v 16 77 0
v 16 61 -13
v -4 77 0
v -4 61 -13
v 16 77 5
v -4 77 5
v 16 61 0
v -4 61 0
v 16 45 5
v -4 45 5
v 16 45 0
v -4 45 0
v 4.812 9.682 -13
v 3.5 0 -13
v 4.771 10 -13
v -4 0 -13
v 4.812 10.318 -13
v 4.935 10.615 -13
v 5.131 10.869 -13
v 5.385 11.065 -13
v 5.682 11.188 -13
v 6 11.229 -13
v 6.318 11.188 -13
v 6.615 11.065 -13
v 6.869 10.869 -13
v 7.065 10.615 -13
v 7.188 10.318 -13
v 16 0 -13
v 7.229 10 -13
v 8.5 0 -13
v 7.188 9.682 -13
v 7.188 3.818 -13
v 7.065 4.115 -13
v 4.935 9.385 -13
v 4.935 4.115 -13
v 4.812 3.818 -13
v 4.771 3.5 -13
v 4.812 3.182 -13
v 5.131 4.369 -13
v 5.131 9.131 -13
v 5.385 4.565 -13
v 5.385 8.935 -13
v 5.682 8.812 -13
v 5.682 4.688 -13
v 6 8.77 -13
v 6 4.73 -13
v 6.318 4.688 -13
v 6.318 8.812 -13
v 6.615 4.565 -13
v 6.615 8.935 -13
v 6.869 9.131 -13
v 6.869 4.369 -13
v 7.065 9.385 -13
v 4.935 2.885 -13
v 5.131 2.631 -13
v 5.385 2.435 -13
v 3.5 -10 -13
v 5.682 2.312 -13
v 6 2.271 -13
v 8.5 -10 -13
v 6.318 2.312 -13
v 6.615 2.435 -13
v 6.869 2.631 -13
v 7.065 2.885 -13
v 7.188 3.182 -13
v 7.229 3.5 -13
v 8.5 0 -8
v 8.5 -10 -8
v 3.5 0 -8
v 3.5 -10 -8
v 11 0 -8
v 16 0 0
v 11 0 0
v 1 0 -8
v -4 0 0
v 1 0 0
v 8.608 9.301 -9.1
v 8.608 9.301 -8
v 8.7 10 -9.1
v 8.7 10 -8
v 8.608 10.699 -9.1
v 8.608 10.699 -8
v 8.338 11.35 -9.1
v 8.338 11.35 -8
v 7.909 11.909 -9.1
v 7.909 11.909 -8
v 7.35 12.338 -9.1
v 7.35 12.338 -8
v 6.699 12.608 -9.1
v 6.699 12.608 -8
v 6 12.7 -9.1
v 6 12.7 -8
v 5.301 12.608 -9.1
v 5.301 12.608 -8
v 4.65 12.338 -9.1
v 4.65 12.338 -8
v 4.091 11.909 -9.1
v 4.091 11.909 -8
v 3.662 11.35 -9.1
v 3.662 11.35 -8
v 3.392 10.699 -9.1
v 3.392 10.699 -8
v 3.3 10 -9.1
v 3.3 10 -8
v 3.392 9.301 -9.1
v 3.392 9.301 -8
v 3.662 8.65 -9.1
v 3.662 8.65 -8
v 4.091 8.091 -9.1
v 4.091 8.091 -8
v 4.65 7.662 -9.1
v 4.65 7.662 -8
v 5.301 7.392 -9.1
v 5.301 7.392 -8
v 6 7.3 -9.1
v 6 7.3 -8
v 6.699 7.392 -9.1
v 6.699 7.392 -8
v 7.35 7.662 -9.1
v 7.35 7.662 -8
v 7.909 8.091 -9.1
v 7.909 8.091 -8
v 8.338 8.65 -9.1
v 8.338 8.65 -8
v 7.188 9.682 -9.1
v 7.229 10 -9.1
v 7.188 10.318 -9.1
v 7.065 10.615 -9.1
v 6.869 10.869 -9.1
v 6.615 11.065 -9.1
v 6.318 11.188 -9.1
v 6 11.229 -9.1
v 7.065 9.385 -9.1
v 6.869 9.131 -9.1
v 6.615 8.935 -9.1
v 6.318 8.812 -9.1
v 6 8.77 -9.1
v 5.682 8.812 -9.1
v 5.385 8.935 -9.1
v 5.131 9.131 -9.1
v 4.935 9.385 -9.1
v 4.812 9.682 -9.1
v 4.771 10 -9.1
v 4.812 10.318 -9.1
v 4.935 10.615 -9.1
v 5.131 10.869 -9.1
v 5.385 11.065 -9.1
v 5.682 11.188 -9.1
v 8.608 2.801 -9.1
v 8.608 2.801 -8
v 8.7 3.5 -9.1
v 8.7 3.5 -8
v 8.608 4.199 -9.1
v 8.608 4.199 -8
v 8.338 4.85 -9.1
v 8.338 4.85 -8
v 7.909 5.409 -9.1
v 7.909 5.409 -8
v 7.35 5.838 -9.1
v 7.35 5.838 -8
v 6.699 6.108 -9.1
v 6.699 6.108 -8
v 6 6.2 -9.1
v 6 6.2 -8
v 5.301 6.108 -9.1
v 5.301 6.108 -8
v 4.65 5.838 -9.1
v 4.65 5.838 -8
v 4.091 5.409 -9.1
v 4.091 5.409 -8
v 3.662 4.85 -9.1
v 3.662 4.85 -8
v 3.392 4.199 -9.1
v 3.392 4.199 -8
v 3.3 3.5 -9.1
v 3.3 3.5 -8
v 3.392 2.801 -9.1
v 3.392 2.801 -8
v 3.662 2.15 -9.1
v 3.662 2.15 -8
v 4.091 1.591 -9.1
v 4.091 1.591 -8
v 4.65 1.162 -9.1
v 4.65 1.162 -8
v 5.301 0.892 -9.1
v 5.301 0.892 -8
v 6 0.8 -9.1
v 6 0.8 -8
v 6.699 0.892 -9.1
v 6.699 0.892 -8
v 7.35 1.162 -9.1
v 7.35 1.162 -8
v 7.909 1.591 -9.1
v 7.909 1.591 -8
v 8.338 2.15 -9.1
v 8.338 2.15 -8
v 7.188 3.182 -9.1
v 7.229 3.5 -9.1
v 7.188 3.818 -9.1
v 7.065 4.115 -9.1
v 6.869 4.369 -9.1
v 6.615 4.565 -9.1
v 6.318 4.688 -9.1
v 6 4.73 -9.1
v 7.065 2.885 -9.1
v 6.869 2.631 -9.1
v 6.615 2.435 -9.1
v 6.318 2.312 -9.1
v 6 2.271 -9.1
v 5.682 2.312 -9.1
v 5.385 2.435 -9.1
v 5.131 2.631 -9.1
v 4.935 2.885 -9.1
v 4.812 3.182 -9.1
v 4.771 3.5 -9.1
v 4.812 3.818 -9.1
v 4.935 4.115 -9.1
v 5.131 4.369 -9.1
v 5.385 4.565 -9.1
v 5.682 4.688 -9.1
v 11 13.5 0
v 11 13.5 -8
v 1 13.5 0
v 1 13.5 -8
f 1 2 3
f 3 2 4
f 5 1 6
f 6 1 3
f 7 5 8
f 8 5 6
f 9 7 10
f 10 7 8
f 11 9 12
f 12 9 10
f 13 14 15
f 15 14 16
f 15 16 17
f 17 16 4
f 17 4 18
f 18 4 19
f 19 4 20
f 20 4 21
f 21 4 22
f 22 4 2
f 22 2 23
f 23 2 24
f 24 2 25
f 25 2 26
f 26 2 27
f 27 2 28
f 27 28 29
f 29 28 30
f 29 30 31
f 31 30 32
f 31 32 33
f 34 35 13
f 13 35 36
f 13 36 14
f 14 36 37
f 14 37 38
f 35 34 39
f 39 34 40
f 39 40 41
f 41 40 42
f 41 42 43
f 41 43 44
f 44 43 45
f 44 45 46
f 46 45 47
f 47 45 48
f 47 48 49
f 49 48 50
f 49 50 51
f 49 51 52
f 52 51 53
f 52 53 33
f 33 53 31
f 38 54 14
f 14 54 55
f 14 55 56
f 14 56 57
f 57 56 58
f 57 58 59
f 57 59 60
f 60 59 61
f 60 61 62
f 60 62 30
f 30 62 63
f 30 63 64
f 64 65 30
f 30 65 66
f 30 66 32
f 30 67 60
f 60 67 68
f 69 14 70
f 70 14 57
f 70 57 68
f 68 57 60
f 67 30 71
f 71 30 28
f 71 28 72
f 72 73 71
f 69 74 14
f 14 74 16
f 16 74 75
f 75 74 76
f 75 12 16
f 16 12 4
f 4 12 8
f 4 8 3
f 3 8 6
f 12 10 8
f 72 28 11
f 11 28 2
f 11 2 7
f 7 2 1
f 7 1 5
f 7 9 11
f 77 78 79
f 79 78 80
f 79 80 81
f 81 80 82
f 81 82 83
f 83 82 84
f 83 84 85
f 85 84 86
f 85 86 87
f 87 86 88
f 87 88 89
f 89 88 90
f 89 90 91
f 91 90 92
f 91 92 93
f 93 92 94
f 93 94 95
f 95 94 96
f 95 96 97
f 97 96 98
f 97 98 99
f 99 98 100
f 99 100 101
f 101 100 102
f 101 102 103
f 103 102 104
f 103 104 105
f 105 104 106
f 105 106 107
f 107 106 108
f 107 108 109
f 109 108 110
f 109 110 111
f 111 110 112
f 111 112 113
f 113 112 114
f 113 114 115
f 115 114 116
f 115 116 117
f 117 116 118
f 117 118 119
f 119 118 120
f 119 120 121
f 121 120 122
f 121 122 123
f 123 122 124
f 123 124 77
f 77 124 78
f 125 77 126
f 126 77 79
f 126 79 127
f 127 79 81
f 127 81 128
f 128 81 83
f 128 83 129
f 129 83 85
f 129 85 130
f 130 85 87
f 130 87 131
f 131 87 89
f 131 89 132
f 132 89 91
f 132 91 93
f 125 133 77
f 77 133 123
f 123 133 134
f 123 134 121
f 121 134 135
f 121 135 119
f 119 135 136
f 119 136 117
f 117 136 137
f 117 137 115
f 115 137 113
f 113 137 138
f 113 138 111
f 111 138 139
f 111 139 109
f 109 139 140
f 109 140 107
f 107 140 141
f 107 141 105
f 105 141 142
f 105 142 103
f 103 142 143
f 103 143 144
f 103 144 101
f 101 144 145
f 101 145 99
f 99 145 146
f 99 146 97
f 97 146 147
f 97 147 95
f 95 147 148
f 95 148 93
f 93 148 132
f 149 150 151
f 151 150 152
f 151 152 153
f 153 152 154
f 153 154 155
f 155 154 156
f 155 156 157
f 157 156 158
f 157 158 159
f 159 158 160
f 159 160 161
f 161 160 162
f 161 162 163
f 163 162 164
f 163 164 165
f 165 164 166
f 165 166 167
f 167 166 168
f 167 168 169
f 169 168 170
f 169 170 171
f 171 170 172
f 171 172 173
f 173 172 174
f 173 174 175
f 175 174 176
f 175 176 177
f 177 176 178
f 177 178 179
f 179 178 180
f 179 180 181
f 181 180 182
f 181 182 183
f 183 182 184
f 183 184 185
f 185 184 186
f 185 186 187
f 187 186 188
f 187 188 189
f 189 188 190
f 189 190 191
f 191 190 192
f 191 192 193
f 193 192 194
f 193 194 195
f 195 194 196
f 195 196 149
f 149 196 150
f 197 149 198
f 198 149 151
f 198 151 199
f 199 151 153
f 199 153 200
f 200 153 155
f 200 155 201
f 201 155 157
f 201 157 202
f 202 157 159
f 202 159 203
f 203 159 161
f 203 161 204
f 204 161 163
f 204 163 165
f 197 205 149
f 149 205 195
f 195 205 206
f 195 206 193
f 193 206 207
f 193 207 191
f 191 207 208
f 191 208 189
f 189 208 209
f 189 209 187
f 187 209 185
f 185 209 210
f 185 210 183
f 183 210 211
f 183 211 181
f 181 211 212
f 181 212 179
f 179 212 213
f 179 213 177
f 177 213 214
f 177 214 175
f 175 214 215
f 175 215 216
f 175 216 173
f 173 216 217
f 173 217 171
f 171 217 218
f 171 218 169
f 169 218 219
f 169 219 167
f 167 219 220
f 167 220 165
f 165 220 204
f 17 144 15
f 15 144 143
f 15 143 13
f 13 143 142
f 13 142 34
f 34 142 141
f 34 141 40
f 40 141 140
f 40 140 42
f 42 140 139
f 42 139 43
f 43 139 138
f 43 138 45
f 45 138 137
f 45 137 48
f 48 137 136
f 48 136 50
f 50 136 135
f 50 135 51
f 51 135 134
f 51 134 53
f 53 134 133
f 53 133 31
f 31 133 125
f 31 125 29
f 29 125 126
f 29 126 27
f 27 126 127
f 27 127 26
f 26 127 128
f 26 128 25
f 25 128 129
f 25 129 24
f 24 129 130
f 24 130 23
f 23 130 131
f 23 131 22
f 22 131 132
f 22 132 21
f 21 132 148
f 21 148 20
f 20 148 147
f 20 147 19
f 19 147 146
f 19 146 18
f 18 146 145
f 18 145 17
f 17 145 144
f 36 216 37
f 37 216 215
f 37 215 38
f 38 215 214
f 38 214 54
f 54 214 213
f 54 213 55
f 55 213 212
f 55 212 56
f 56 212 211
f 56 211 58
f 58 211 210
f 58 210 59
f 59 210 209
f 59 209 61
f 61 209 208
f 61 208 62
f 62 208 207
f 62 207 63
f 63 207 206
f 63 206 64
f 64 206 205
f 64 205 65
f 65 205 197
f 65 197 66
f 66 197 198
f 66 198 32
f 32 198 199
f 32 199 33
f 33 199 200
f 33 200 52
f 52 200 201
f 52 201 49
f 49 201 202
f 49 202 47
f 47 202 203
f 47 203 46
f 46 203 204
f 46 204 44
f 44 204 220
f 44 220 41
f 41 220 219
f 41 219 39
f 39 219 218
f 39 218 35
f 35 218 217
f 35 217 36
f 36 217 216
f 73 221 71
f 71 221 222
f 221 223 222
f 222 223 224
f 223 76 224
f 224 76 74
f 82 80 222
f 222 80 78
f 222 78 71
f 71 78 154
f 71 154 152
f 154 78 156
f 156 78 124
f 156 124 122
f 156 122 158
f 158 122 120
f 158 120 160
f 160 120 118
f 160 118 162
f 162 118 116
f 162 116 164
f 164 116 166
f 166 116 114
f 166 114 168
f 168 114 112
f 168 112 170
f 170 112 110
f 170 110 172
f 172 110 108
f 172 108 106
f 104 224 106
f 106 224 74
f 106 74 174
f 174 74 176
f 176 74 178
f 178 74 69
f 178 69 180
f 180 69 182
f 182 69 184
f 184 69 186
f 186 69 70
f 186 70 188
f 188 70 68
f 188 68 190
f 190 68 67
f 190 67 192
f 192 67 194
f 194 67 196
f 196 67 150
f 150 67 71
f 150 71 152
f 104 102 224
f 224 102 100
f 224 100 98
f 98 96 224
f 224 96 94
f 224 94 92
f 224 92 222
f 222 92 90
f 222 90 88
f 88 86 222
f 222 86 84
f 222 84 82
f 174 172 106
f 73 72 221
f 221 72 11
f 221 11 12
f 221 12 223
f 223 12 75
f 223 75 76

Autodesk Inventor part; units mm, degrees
ref_plane "YZ Plane" through (0, 0, 0) normal (1, 0, 0) x (0, 1, 0)
ref_plane "XZ Plane" through (0, 0, 0) normal (0, 1, 0) x (-1, 0, 0)
sketch "Sketch2" plane through (0, 0, 0) normal (1, 0, 0) x (0, 1, 0)
  line L0 (0, 0) -> (15, 0)
  line L1 (15, 0) -> (15, -10)
  line L2 (15, -10) -> (0, -10)
  line L3 (0, -10) -> (0, 0)
  dimension "d4" = 15
  dimension "d5" = 10
extrude "Extrusion2" add sketch "Sketch2" along normal blind 12
sketch "Sketch3" plane through (0, 0, 0) normal (0, 0, 1) x (1, 0, 0)
  line L0 (0, 0) -> (1, 0)
  line L1 (0, 0) -> (12, 0) projected
  line L2 (1, 0) -> (1, 13.5)
  line L3 (1, 13.5) -> (11, 13.5)
  line L4 (11, 13.5) -> (11, 0)
  line L5 (11, 0) -> (1, 0)
  dimension "d8" = 1
  dimension "d9" = 13.5
  dimension "d10" = 10
extrude "Extrusion3" cut sketch "Sketch3" against normal blind 8
sketch "Sketch4" plane through (0, 0, -10) normal (0, 0, -1) x (-1, 0, 0)
  line L0 (0, 15) -> (-12, 15) projected
  line L1 (0, 0) -> (-12, 0) projected
  line L2 (-12, 15) -> (0, 15)
  line L3 (0, 15) -> (0, 0)
  line L4 (0, 0) -> (-12, 0)
  line L5 (-12, 0) -> (-12, 15)
extrude "Extrusion4" add sketch "Sketch4" along normal blind 2
sketch "Sketch5" plane through (0, 0, -8) normal (0, 0, 1) x (1, 0, 0)
  line L0 (1, 13.5) -> (11, 13.5) projected
  line L1 (6, 13.5) -> (6, 10)
  line L2 (6, 10) -> (6, 3.5)
  circle A0 centre (6, 10) radius 1.2295
  circle A1 centre (6, 3.5) radius 1.2295
  point P0 (0, 0)
  dimension "d15" = 3.5
  dimension "d16" = 6.5
  dimension "d17" = 2.459
  dimension "d18" = 2.459
extrude "Extrusion5" cut sketch "Sketch5" against normal blind 4
sketch "Sketch6" plane through (0, 0, -8) normal (0, 0, 1) x (1, 0, 0)
  circle A0 centre (6, 10) radius 1.2295 projected
  circle A1 centre (6, 10) radius 2.7
  circle A2 centre (6, 3.5) radius 1.2295 projected
  circle A3 centre (6, 3.5) radius 2.7
  point P0 (0, 0)
  dimension "d21" = 5.4
  dimension "d22" = 5.4
extrude "Extrusion6" cut sketch "Sketch6" against normal blind 1.1
sketch "Sketch15" plane through (12, 0, 0) normal (1, 0, 0) x (0, 0, -1)
  line L0 (0, 15) -> (12, 15) projected
  line L1 (12, 15) -> (12, 0) projected
  line L2 (0, 15) -> (12, 15)
  line L3 (12, 15) -> (12, 0)
  line L4 (12, 0) -> (0, 0)
  line L5 (0, 0) -> (0, 15)
extrude "Extrusion14" add sketch "Sketch15" along normal blind 4
ref_plane "Work Plane1" through (6, 0, 0) normal (1, 0, 0) x (0, 0, -1)
mirror "Mirror1" about plane through (6, 0, 0) normal (1, 0, 0) of "Extrusion14"
sketch "Sketch16" plane through (1, 0, -8) normal (0, -1, 0) x (1, 0, 0)
  line L0 (10, 0) -> (0, 0) projected
  line L1 (5, 0) -> (7.5, 0)
  line L2 (7.5, 0) -> (7.5, -4)
  line L3 (-5, -4) -> (15, -4) projected
  line L4 (7.5, -4) -> (2.5, -4)
  line L5 (2.5, -4) -> (2.5, 0)
  line L6 (2.5, 0) -> (5, 0)
  point P0 (-1, 8)
  dimension "d61" = 2.5
  dimension "d62" = 4
  dimension "d63" = 5
  dimension "d64" = 4
extrude "Extrusion15" add sketch "Sketch16" along normal blind 10
sketch "Sketch18" plane through (0, 0, -12) normal (0, 0, -1) x (-1, 0, 0)
  line L0 (-16, 15) -> (4, 15) projected
  line L1 (4, 0) -> (-3.5, 0) projected
  line L2 (-16, 15) -> (4, 15)
  line L3 (4, 15) -> (4, 0)
  line L4 (4, 0) -> (-16, 0)
  line L5 (-16, 0) -> (-16, 15)
  line L6 (-8.5, -10) -> (-3.5, -10) projected
  line L7 (-3.5, 0) -> (-8.5, 0)
  line L8 (-8.5, 0) -> (-8.5, -10)
  line L9 (-8.5, -10) -> (-3.5, -10)
  line L10 (-3.5, -10) -> (-3.5, 0)
  circle A0 centre (-6, 3.5) radius 1.2295 projected
  circle A1 centre (-6, 3.5) radius 1.2295
  circle A2 centre (-6, 10) radius 1.2295 projected
  circle A3 centre (-6, 10) radius 1.2295
  point P0 (0, 0)
extrude "Extrusion16" add sketch "Sketch18" along normal blind 1
sketch "Sketch19" plane through (16, 0, 0) normal (1, 0, 0) x (0, 0, -1)
  line L0 (0, 15) -> (13, 15) projected
  line L1 (0, 15) -> (0, 40)
  line L2 (13, 45) -> (13, 15)
  line L3 (13, 56) -> (13, 45)
  line L4 (0, 45) -> (0, 40)
  line L5 (0, 45) -> (-5, 45)
  line L6 (13, 60) -> (13, 56)
  line L7 (-5, 77) -> (0, 77)
  line L8 (0, 77) -> (13, 61)
  line L9 (13, 61) -> (13, 60)
  line L10 (0, 61) -> (-5, 77)
  line L11 (0, 61) -> (-5, 45)
  point P0 (0, 0)
extrude "Extrusion17" add sketch "Sketch19" against normal blind 20
properties part number "30mm_x_20mm"
